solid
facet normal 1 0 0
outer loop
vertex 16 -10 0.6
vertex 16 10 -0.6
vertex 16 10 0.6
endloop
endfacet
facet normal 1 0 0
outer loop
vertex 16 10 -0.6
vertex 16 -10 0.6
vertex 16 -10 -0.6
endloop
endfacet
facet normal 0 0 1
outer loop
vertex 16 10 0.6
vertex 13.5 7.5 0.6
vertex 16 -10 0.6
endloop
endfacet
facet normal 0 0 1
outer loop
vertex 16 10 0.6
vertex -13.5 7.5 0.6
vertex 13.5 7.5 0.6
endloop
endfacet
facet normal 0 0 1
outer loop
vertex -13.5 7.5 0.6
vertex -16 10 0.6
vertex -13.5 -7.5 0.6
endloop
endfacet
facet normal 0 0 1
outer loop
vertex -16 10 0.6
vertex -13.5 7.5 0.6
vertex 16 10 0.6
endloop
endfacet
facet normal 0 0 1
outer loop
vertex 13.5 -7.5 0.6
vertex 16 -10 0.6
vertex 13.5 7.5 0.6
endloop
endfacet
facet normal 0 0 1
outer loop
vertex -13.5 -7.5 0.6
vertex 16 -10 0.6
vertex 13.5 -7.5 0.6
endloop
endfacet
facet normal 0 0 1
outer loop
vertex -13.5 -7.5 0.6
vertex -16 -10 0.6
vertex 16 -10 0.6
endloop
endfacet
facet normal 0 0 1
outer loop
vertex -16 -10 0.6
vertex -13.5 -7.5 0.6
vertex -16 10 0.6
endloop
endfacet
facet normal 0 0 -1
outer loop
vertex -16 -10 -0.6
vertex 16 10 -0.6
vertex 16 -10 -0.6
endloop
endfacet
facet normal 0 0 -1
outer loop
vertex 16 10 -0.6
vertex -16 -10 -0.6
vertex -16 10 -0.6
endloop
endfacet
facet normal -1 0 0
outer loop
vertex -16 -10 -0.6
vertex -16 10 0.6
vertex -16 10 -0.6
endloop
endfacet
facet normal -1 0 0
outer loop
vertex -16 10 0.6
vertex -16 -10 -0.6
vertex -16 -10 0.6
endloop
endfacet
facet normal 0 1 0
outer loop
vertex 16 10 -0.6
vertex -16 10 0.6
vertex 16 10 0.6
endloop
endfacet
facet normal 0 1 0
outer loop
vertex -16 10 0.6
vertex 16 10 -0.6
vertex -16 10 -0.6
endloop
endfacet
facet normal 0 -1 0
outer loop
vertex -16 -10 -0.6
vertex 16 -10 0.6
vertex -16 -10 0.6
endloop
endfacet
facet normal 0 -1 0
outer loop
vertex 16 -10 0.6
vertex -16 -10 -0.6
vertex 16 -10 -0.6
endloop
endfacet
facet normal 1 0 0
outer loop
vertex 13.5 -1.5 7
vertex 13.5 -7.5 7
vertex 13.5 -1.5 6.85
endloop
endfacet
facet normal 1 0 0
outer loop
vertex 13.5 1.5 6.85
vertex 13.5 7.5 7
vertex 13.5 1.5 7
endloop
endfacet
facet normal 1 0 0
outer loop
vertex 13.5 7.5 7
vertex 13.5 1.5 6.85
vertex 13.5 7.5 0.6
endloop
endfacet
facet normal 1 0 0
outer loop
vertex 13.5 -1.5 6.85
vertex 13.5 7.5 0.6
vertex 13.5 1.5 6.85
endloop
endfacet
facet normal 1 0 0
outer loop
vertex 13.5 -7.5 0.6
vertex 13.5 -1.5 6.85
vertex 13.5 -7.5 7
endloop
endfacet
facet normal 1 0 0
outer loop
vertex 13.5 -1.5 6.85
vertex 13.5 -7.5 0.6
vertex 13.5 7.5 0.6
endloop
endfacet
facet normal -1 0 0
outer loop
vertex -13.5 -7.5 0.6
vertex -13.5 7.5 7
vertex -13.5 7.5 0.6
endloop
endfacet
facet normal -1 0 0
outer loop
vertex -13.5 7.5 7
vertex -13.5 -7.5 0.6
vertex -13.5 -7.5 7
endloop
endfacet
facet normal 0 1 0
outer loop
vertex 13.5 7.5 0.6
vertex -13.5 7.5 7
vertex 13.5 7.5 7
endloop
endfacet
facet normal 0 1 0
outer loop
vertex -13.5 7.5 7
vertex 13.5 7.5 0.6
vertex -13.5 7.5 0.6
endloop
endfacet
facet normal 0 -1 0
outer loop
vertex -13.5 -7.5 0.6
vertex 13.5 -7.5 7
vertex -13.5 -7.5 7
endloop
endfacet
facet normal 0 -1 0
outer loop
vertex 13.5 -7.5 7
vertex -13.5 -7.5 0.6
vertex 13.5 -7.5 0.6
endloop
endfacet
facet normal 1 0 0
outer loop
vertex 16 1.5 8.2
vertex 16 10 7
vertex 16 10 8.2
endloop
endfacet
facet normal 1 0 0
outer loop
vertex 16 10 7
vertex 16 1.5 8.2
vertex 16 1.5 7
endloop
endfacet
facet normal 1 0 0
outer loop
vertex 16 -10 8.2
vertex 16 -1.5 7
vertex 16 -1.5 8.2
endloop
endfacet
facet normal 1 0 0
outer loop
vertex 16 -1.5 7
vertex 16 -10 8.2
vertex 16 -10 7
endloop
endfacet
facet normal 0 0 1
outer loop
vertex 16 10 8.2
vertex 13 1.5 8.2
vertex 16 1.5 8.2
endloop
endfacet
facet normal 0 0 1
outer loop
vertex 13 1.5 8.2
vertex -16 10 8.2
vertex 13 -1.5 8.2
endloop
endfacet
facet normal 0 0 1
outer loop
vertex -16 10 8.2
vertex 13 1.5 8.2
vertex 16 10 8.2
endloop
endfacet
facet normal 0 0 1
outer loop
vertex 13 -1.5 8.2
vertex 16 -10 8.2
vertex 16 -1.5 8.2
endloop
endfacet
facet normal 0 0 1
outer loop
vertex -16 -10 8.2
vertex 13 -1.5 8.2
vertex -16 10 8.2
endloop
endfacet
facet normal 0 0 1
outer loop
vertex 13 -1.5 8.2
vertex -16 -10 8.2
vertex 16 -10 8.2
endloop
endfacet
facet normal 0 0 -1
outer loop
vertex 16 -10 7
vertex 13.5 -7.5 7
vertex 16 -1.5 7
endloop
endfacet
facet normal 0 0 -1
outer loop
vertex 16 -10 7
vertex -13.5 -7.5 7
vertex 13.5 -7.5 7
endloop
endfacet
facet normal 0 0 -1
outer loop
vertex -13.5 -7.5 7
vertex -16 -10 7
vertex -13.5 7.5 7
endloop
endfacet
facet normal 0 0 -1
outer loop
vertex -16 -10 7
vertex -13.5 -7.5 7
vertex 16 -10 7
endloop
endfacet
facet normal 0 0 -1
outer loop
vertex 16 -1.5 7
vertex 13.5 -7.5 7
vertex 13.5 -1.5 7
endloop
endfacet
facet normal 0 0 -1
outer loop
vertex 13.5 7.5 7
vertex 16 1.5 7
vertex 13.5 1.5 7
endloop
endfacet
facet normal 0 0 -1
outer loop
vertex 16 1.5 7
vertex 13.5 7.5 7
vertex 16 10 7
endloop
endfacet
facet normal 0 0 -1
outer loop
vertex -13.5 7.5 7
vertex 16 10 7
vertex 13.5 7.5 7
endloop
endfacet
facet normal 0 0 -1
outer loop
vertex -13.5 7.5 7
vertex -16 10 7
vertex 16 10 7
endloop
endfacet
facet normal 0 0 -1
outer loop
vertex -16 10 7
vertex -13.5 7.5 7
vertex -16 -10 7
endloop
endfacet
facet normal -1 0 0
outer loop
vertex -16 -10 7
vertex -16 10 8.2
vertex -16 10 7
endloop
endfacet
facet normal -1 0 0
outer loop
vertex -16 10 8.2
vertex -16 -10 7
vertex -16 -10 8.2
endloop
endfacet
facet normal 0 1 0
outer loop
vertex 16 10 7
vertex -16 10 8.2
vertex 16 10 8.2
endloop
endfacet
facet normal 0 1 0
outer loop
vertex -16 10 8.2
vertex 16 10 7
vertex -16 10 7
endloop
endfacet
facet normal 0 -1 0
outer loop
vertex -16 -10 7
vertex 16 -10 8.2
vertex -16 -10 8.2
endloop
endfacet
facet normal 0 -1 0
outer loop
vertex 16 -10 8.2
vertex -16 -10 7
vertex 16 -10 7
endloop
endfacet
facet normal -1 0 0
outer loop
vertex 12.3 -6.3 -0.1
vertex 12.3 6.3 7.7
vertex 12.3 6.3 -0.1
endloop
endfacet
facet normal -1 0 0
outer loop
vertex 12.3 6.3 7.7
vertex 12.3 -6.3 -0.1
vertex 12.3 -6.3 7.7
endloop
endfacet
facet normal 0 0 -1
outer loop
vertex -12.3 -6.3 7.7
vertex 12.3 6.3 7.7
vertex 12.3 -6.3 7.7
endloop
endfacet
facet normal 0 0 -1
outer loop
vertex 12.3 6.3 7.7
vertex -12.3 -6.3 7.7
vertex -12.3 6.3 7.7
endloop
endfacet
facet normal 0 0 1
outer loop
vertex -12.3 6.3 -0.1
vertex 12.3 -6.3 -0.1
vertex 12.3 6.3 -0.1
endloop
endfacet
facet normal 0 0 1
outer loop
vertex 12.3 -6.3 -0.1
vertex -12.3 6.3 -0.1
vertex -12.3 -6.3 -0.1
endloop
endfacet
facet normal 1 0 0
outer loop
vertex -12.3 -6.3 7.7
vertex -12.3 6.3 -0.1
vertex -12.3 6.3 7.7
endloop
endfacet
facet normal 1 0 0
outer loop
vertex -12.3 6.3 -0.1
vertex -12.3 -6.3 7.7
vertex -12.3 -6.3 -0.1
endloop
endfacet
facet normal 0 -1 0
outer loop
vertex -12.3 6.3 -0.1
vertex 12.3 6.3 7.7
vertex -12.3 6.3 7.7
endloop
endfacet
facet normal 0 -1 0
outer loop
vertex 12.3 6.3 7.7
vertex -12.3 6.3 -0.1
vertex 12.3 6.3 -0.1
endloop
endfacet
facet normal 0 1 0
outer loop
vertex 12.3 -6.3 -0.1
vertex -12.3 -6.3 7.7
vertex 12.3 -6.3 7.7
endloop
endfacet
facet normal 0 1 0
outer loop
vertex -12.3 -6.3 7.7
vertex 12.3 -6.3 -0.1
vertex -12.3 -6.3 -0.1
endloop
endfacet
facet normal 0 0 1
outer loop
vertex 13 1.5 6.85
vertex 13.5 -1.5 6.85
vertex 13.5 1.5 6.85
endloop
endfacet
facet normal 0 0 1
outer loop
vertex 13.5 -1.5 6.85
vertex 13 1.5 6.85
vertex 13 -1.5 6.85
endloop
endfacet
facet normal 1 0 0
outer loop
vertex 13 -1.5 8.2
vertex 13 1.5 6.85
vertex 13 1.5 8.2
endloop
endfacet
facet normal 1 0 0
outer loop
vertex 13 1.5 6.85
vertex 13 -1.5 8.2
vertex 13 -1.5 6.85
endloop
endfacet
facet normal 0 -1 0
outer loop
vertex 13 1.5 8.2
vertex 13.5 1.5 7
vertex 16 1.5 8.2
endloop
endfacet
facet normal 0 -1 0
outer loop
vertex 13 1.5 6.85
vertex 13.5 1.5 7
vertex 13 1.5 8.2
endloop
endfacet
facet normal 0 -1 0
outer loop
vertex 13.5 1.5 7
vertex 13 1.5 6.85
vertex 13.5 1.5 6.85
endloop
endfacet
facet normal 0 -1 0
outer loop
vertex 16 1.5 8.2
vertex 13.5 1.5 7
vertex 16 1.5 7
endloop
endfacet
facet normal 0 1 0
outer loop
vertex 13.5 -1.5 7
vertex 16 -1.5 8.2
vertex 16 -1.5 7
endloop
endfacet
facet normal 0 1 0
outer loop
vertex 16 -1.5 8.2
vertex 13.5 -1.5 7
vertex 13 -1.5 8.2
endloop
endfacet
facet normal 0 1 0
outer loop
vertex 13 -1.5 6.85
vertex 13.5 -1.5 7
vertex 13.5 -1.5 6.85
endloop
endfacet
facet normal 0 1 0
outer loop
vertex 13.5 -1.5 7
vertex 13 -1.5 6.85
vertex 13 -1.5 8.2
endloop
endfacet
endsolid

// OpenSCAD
// file: parameters.scad
// AFPM-Desk-v2 shared parameters (mm)
// Dual-rotor axial-flux PM learning generator with steel back-iron.
// Faraday induction education only — not free-energy / overunity.
// Target printer: Anycubic Kobra 3 Max, 0.4 mm nozzle, 0.2 mm layers, PLA/PETG.

$fn = 72;

// --- Printer / FDM assumptions ---
nozzle = 0.4;
layer = 0.2;
wall = 1.6;                 // load-bearing walls ~4 perimeters
housing_wall = 2.4;
clearance_slip = 0.35;      // shaft slip fit
clearance_loose = 0.55;
press_interference = 0.15;  // bearing pocket undersize total (coupon-test)
magnet_pocket_xy = 0.25;    // +0.25 mm on diameter
magnet_pocket_z = 0.15;     // +0.15 mm depth
elephant_foot = 0.5;

// --- Magnets (N42 Neo discs) ---
magnet_d = 20;
magnet_h = 3;
magnet_count = 8;           // per rotor (8+8 total)
magnet_pcd = 70;

// --- Steel back-iron (purchased mild steel disc) ---
steel_od = 100;
steel_id = 14;              // clearance around hub boss
steel_h = 1.5;              // 1.5–2.0 mm mild steel OK
steel_recess_clearance = 0.3;

// --- Rotor printed disc ---
rotor_od = 110;
rotor_hub_bore = 12;        // seats on shaft_hub boss
rotor_thickness = 7;        // magnet pocket from face; steel recess on back
magnet_pocket_depth = magnet_h + magnet_pocket_z;
steel_recess_depth = steel_h + 0.2;

// --- Stator (coreless, between rotors) ---
stator_od = 120;
stator_id = 28;
stator_thickness = 10;
coil_count = 6;
coil_slot_w = 24;
coil_slot_l = 30;           // radial length of pocket
coil_slot_depth = 8;
coil_pcd = 70;
stator_pillar_pcd = 100;    // M4 pillar holes

// --- Coil former / bobbin ---
former_core_w = 14;
former_core_l = 26;
former_flange = 3;
former_wind_h = 11;
former_bore = 0;            // solid core, split design via kerf

// --- Shaft / bearings ---
shaft_d = 8;
bearing_od = 22;            // 608-2RS
bearing_id = 8;
bearing_h = 7;
bearing_seat_od = bearing_od - press_interference; // coupon-test; start ~21.85

// --- Base / frame ---
base_w = 180;
base_d = 160;
base_h = 8;
post_h = 70;
post_spacing = 120;         // Y distance between bearing post centers
post_d = 36;

// --- Axial stack targets (along shaft / Y) ---
// crank | brg | hub+rotorA+steel | air | stator | air | steel+rotorB+hub | brg
air_gap_nominal = 2.0;      // mechanical per side magnet↔coil face

// --- Crank ---
crank_arm_len = 85;
crank_arm_w = 18;
crank_arm_t = 10;
handle_d = 14;
handle_len = 45;

// --- Electronics tray ---
tray_w = 75;
tray_d = 55;
tray_h = 14;

// --- Fasteners ---
m3_clear = 3.4;
m3_tap = 2.5;
m4_clear = 4.3;
// main file
include <parameters.scad>
// Permanent thin bobbin that stays in stator (optional vs free coils).
// Print 6. Wind then drop into stator_plate pockets.

bw = former_core_w + 1;
bl = former_core_l + 1;
bh = coil_slot_depth - 0.4;
flange = 2.5;

module coil_bobbin() {
  difference() {
    union() {
      translate([0,0,0])
        cube([bl + 2*flange, bw + 2*flange, 1.2], center=true);
      translate([0,0,bh/2])
        cube([bl, bw, bh], center=true);
      translate([0,0,bh])
        cube([bl + 2*flange, bw + 2*flange, 1.2], center=true);
    }
    // hollow wind window
    translate([0,0,bh/2])
      cube([bl - 2.4, bw - 2.4, bh + 0.2], center=true);
    // lead slot
    translate([bl/2 + flange/2, 0, bh])
      cube([flange+1, 3, 1.5], center=true);
  }
}

coil_bobbin();
